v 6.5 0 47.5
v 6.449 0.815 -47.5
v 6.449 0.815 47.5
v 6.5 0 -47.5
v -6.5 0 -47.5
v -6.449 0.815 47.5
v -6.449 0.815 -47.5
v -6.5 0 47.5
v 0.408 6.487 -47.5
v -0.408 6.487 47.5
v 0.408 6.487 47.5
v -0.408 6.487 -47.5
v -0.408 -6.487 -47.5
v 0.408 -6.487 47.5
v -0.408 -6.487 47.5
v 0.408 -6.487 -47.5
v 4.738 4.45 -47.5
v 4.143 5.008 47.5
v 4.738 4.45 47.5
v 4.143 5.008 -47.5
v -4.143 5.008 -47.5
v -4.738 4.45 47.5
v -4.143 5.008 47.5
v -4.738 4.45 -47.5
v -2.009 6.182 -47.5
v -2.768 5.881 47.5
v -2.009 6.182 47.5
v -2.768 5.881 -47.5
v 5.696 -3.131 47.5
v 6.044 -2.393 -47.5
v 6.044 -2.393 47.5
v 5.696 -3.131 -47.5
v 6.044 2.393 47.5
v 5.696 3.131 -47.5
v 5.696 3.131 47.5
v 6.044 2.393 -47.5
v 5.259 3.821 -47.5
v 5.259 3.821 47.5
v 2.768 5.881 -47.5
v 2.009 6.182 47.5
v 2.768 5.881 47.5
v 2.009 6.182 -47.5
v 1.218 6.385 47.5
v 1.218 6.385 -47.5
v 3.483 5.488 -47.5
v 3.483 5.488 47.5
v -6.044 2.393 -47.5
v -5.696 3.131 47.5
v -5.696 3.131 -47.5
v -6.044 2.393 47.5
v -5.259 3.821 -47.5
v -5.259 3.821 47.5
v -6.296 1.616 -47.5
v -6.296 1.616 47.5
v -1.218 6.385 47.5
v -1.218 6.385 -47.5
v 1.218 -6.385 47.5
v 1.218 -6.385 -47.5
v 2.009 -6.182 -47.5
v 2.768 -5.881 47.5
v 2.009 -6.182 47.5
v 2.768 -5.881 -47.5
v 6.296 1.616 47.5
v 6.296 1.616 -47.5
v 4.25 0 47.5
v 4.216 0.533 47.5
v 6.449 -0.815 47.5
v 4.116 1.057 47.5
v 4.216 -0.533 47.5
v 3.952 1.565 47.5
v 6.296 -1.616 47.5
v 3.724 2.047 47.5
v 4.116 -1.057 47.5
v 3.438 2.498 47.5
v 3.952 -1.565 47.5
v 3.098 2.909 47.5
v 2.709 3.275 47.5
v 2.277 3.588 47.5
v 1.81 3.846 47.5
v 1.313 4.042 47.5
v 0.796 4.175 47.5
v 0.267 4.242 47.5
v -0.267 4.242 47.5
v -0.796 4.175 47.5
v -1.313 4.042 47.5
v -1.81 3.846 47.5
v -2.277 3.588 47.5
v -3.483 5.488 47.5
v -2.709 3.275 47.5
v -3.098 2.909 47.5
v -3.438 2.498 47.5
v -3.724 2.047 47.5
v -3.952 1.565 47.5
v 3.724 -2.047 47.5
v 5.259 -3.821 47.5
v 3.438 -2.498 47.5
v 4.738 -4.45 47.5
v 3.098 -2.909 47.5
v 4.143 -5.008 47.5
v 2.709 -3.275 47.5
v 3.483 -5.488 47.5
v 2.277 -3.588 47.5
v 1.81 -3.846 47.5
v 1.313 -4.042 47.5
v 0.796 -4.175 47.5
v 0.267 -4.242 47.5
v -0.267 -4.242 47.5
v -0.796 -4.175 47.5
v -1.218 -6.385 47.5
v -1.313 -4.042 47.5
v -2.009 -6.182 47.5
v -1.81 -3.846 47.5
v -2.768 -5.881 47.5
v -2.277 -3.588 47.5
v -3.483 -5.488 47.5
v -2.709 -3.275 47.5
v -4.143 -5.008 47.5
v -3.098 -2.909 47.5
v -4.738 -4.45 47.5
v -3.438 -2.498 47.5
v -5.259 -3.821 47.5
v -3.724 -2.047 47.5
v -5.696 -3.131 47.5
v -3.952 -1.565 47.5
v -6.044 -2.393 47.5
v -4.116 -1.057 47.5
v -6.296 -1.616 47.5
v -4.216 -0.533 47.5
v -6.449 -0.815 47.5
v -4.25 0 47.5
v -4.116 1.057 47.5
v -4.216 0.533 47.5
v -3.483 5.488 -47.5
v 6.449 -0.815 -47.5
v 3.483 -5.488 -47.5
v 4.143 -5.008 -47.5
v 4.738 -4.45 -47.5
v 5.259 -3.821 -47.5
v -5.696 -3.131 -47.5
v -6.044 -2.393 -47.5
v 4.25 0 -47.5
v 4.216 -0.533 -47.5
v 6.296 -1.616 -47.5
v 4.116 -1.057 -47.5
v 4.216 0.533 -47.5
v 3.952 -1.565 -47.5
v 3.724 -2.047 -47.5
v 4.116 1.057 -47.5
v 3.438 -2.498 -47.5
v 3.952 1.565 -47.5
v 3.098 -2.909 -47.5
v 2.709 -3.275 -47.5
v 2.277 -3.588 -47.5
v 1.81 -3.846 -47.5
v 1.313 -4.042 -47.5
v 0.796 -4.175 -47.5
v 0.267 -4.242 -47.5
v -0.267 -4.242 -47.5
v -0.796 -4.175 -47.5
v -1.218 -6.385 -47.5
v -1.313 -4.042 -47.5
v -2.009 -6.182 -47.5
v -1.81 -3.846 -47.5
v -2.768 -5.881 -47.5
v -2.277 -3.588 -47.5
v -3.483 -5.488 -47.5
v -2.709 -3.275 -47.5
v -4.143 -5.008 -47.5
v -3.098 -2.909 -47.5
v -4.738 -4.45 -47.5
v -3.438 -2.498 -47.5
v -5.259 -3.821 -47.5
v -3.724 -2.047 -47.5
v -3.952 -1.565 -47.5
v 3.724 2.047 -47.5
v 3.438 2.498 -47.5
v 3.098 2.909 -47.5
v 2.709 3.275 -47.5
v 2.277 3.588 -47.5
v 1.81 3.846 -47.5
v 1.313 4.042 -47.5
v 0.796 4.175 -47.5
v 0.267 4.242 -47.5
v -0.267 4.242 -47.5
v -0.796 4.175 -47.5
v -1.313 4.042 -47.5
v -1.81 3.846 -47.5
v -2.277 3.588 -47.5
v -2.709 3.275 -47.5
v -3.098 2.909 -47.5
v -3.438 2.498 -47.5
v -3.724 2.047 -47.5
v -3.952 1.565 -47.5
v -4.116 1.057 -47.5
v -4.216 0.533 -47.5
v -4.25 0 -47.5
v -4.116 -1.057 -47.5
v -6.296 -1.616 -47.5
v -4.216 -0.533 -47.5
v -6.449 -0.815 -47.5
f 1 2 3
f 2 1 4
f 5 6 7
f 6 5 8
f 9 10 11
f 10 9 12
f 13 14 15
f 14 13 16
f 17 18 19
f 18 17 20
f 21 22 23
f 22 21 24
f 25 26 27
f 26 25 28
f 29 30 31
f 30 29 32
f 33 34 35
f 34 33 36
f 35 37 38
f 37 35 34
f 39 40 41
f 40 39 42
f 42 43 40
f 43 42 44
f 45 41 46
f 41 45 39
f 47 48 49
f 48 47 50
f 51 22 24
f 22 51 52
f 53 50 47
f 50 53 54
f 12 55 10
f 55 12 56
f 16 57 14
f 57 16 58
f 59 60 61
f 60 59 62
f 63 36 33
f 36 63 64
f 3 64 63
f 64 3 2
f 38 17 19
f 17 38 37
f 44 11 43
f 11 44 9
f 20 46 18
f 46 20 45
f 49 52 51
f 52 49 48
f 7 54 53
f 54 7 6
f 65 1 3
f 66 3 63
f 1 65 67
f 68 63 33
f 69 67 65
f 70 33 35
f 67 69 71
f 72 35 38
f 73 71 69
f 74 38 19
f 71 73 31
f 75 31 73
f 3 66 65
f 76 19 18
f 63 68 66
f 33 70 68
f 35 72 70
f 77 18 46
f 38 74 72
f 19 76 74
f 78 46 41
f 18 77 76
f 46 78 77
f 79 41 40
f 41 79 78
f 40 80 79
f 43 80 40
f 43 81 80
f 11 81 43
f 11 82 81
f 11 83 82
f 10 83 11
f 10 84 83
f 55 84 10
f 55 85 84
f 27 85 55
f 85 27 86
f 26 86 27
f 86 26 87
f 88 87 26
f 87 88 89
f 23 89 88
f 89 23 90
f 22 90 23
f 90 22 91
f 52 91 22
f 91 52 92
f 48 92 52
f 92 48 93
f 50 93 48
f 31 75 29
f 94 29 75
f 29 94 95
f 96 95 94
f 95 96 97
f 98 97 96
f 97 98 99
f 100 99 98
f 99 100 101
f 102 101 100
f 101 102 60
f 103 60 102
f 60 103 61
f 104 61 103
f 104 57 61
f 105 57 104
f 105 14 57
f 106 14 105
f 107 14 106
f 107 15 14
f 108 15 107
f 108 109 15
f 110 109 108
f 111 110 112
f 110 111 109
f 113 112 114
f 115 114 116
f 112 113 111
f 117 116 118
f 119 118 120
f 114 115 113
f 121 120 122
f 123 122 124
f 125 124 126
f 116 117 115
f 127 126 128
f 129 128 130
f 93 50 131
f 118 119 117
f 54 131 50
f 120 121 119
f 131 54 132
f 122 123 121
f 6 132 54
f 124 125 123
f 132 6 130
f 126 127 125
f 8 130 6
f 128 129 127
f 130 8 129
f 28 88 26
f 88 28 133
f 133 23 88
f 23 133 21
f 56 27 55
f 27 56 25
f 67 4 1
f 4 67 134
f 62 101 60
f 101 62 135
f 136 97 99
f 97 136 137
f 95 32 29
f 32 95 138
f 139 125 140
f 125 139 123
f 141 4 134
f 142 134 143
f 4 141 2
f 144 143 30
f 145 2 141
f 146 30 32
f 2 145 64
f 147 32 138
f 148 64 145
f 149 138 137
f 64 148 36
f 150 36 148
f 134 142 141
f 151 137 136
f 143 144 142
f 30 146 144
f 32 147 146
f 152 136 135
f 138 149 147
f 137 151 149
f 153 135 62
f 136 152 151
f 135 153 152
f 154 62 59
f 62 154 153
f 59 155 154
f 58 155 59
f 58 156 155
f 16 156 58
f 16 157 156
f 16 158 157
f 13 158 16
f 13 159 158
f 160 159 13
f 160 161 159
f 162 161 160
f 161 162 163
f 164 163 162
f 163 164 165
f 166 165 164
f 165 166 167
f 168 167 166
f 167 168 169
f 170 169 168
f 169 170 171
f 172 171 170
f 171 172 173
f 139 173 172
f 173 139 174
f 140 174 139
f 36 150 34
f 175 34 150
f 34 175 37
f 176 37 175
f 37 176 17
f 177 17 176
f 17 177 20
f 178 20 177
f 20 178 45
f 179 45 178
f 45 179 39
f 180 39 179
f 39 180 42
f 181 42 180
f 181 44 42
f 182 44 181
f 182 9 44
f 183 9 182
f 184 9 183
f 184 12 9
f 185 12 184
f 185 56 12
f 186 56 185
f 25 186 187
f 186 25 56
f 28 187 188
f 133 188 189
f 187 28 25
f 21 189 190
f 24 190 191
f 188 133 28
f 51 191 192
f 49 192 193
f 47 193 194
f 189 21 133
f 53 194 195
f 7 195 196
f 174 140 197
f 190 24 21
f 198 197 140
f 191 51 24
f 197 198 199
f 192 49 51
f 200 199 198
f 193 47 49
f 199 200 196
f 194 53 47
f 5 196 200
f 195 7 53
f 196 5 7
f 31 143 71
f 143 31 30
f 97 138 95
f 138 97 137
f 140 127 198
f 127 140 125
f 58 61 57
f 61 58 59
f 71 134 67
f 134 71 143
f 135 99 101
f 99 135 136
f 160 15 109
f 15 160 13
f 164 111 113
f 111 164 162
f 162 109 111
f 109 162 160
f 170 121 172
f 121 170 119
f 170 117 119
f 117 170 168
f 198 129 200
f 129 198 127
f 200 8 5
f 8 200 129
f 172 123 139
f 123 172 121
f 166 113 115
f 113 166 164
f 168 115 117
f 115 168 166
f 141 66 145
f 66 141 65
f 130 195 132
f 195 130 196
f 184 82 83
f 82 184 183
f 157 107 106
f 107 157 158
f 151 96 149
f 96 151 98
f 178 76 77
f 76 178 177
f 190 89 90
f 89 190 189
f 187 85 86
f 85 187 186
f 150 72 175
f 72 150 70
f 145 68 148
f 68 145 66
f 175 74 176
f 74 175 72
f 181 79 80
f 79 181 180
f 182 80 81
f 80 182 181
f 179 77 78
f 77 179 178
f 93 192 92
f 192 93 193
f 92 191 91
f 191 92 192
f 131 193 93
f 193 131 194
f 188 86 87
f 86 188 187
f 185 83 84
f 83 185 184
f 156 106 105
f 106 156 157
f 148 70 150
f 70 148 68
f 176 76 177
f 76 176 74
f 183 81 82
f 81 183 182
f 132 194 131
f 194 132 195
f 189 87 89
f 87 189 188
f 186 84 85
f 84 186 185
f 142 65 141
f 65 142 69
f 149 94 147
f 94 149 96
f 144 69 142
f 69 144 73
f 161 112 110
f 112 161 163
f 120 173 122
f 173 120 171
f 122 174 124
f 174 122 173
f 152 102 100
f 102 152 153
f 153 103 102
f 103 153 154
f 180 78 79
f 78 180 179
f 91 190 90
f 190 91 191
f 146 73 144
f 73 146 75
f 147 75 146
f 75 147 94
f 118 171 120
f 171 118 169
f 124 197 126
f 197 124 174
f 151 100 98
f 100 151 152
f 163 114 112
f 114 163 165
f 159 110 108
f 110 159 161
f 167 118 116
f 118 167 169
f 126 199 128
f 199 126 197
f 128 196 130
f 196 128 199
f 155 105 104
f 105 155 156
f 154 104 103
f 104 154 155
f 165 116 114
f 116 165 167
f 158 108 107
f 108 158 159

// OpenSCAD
$fn = 50;


difference() {
	union() {
		translate(v = [0, 0, -47.5000000000]) {
			cylinder(h = 95, r = 6.5000000000);
		}
	}
	union() {
		translate(v = [0, 0, -100.0000000000]) {
			cylinder(h = 200, r = 4.2500000000);
		}
	}
}
